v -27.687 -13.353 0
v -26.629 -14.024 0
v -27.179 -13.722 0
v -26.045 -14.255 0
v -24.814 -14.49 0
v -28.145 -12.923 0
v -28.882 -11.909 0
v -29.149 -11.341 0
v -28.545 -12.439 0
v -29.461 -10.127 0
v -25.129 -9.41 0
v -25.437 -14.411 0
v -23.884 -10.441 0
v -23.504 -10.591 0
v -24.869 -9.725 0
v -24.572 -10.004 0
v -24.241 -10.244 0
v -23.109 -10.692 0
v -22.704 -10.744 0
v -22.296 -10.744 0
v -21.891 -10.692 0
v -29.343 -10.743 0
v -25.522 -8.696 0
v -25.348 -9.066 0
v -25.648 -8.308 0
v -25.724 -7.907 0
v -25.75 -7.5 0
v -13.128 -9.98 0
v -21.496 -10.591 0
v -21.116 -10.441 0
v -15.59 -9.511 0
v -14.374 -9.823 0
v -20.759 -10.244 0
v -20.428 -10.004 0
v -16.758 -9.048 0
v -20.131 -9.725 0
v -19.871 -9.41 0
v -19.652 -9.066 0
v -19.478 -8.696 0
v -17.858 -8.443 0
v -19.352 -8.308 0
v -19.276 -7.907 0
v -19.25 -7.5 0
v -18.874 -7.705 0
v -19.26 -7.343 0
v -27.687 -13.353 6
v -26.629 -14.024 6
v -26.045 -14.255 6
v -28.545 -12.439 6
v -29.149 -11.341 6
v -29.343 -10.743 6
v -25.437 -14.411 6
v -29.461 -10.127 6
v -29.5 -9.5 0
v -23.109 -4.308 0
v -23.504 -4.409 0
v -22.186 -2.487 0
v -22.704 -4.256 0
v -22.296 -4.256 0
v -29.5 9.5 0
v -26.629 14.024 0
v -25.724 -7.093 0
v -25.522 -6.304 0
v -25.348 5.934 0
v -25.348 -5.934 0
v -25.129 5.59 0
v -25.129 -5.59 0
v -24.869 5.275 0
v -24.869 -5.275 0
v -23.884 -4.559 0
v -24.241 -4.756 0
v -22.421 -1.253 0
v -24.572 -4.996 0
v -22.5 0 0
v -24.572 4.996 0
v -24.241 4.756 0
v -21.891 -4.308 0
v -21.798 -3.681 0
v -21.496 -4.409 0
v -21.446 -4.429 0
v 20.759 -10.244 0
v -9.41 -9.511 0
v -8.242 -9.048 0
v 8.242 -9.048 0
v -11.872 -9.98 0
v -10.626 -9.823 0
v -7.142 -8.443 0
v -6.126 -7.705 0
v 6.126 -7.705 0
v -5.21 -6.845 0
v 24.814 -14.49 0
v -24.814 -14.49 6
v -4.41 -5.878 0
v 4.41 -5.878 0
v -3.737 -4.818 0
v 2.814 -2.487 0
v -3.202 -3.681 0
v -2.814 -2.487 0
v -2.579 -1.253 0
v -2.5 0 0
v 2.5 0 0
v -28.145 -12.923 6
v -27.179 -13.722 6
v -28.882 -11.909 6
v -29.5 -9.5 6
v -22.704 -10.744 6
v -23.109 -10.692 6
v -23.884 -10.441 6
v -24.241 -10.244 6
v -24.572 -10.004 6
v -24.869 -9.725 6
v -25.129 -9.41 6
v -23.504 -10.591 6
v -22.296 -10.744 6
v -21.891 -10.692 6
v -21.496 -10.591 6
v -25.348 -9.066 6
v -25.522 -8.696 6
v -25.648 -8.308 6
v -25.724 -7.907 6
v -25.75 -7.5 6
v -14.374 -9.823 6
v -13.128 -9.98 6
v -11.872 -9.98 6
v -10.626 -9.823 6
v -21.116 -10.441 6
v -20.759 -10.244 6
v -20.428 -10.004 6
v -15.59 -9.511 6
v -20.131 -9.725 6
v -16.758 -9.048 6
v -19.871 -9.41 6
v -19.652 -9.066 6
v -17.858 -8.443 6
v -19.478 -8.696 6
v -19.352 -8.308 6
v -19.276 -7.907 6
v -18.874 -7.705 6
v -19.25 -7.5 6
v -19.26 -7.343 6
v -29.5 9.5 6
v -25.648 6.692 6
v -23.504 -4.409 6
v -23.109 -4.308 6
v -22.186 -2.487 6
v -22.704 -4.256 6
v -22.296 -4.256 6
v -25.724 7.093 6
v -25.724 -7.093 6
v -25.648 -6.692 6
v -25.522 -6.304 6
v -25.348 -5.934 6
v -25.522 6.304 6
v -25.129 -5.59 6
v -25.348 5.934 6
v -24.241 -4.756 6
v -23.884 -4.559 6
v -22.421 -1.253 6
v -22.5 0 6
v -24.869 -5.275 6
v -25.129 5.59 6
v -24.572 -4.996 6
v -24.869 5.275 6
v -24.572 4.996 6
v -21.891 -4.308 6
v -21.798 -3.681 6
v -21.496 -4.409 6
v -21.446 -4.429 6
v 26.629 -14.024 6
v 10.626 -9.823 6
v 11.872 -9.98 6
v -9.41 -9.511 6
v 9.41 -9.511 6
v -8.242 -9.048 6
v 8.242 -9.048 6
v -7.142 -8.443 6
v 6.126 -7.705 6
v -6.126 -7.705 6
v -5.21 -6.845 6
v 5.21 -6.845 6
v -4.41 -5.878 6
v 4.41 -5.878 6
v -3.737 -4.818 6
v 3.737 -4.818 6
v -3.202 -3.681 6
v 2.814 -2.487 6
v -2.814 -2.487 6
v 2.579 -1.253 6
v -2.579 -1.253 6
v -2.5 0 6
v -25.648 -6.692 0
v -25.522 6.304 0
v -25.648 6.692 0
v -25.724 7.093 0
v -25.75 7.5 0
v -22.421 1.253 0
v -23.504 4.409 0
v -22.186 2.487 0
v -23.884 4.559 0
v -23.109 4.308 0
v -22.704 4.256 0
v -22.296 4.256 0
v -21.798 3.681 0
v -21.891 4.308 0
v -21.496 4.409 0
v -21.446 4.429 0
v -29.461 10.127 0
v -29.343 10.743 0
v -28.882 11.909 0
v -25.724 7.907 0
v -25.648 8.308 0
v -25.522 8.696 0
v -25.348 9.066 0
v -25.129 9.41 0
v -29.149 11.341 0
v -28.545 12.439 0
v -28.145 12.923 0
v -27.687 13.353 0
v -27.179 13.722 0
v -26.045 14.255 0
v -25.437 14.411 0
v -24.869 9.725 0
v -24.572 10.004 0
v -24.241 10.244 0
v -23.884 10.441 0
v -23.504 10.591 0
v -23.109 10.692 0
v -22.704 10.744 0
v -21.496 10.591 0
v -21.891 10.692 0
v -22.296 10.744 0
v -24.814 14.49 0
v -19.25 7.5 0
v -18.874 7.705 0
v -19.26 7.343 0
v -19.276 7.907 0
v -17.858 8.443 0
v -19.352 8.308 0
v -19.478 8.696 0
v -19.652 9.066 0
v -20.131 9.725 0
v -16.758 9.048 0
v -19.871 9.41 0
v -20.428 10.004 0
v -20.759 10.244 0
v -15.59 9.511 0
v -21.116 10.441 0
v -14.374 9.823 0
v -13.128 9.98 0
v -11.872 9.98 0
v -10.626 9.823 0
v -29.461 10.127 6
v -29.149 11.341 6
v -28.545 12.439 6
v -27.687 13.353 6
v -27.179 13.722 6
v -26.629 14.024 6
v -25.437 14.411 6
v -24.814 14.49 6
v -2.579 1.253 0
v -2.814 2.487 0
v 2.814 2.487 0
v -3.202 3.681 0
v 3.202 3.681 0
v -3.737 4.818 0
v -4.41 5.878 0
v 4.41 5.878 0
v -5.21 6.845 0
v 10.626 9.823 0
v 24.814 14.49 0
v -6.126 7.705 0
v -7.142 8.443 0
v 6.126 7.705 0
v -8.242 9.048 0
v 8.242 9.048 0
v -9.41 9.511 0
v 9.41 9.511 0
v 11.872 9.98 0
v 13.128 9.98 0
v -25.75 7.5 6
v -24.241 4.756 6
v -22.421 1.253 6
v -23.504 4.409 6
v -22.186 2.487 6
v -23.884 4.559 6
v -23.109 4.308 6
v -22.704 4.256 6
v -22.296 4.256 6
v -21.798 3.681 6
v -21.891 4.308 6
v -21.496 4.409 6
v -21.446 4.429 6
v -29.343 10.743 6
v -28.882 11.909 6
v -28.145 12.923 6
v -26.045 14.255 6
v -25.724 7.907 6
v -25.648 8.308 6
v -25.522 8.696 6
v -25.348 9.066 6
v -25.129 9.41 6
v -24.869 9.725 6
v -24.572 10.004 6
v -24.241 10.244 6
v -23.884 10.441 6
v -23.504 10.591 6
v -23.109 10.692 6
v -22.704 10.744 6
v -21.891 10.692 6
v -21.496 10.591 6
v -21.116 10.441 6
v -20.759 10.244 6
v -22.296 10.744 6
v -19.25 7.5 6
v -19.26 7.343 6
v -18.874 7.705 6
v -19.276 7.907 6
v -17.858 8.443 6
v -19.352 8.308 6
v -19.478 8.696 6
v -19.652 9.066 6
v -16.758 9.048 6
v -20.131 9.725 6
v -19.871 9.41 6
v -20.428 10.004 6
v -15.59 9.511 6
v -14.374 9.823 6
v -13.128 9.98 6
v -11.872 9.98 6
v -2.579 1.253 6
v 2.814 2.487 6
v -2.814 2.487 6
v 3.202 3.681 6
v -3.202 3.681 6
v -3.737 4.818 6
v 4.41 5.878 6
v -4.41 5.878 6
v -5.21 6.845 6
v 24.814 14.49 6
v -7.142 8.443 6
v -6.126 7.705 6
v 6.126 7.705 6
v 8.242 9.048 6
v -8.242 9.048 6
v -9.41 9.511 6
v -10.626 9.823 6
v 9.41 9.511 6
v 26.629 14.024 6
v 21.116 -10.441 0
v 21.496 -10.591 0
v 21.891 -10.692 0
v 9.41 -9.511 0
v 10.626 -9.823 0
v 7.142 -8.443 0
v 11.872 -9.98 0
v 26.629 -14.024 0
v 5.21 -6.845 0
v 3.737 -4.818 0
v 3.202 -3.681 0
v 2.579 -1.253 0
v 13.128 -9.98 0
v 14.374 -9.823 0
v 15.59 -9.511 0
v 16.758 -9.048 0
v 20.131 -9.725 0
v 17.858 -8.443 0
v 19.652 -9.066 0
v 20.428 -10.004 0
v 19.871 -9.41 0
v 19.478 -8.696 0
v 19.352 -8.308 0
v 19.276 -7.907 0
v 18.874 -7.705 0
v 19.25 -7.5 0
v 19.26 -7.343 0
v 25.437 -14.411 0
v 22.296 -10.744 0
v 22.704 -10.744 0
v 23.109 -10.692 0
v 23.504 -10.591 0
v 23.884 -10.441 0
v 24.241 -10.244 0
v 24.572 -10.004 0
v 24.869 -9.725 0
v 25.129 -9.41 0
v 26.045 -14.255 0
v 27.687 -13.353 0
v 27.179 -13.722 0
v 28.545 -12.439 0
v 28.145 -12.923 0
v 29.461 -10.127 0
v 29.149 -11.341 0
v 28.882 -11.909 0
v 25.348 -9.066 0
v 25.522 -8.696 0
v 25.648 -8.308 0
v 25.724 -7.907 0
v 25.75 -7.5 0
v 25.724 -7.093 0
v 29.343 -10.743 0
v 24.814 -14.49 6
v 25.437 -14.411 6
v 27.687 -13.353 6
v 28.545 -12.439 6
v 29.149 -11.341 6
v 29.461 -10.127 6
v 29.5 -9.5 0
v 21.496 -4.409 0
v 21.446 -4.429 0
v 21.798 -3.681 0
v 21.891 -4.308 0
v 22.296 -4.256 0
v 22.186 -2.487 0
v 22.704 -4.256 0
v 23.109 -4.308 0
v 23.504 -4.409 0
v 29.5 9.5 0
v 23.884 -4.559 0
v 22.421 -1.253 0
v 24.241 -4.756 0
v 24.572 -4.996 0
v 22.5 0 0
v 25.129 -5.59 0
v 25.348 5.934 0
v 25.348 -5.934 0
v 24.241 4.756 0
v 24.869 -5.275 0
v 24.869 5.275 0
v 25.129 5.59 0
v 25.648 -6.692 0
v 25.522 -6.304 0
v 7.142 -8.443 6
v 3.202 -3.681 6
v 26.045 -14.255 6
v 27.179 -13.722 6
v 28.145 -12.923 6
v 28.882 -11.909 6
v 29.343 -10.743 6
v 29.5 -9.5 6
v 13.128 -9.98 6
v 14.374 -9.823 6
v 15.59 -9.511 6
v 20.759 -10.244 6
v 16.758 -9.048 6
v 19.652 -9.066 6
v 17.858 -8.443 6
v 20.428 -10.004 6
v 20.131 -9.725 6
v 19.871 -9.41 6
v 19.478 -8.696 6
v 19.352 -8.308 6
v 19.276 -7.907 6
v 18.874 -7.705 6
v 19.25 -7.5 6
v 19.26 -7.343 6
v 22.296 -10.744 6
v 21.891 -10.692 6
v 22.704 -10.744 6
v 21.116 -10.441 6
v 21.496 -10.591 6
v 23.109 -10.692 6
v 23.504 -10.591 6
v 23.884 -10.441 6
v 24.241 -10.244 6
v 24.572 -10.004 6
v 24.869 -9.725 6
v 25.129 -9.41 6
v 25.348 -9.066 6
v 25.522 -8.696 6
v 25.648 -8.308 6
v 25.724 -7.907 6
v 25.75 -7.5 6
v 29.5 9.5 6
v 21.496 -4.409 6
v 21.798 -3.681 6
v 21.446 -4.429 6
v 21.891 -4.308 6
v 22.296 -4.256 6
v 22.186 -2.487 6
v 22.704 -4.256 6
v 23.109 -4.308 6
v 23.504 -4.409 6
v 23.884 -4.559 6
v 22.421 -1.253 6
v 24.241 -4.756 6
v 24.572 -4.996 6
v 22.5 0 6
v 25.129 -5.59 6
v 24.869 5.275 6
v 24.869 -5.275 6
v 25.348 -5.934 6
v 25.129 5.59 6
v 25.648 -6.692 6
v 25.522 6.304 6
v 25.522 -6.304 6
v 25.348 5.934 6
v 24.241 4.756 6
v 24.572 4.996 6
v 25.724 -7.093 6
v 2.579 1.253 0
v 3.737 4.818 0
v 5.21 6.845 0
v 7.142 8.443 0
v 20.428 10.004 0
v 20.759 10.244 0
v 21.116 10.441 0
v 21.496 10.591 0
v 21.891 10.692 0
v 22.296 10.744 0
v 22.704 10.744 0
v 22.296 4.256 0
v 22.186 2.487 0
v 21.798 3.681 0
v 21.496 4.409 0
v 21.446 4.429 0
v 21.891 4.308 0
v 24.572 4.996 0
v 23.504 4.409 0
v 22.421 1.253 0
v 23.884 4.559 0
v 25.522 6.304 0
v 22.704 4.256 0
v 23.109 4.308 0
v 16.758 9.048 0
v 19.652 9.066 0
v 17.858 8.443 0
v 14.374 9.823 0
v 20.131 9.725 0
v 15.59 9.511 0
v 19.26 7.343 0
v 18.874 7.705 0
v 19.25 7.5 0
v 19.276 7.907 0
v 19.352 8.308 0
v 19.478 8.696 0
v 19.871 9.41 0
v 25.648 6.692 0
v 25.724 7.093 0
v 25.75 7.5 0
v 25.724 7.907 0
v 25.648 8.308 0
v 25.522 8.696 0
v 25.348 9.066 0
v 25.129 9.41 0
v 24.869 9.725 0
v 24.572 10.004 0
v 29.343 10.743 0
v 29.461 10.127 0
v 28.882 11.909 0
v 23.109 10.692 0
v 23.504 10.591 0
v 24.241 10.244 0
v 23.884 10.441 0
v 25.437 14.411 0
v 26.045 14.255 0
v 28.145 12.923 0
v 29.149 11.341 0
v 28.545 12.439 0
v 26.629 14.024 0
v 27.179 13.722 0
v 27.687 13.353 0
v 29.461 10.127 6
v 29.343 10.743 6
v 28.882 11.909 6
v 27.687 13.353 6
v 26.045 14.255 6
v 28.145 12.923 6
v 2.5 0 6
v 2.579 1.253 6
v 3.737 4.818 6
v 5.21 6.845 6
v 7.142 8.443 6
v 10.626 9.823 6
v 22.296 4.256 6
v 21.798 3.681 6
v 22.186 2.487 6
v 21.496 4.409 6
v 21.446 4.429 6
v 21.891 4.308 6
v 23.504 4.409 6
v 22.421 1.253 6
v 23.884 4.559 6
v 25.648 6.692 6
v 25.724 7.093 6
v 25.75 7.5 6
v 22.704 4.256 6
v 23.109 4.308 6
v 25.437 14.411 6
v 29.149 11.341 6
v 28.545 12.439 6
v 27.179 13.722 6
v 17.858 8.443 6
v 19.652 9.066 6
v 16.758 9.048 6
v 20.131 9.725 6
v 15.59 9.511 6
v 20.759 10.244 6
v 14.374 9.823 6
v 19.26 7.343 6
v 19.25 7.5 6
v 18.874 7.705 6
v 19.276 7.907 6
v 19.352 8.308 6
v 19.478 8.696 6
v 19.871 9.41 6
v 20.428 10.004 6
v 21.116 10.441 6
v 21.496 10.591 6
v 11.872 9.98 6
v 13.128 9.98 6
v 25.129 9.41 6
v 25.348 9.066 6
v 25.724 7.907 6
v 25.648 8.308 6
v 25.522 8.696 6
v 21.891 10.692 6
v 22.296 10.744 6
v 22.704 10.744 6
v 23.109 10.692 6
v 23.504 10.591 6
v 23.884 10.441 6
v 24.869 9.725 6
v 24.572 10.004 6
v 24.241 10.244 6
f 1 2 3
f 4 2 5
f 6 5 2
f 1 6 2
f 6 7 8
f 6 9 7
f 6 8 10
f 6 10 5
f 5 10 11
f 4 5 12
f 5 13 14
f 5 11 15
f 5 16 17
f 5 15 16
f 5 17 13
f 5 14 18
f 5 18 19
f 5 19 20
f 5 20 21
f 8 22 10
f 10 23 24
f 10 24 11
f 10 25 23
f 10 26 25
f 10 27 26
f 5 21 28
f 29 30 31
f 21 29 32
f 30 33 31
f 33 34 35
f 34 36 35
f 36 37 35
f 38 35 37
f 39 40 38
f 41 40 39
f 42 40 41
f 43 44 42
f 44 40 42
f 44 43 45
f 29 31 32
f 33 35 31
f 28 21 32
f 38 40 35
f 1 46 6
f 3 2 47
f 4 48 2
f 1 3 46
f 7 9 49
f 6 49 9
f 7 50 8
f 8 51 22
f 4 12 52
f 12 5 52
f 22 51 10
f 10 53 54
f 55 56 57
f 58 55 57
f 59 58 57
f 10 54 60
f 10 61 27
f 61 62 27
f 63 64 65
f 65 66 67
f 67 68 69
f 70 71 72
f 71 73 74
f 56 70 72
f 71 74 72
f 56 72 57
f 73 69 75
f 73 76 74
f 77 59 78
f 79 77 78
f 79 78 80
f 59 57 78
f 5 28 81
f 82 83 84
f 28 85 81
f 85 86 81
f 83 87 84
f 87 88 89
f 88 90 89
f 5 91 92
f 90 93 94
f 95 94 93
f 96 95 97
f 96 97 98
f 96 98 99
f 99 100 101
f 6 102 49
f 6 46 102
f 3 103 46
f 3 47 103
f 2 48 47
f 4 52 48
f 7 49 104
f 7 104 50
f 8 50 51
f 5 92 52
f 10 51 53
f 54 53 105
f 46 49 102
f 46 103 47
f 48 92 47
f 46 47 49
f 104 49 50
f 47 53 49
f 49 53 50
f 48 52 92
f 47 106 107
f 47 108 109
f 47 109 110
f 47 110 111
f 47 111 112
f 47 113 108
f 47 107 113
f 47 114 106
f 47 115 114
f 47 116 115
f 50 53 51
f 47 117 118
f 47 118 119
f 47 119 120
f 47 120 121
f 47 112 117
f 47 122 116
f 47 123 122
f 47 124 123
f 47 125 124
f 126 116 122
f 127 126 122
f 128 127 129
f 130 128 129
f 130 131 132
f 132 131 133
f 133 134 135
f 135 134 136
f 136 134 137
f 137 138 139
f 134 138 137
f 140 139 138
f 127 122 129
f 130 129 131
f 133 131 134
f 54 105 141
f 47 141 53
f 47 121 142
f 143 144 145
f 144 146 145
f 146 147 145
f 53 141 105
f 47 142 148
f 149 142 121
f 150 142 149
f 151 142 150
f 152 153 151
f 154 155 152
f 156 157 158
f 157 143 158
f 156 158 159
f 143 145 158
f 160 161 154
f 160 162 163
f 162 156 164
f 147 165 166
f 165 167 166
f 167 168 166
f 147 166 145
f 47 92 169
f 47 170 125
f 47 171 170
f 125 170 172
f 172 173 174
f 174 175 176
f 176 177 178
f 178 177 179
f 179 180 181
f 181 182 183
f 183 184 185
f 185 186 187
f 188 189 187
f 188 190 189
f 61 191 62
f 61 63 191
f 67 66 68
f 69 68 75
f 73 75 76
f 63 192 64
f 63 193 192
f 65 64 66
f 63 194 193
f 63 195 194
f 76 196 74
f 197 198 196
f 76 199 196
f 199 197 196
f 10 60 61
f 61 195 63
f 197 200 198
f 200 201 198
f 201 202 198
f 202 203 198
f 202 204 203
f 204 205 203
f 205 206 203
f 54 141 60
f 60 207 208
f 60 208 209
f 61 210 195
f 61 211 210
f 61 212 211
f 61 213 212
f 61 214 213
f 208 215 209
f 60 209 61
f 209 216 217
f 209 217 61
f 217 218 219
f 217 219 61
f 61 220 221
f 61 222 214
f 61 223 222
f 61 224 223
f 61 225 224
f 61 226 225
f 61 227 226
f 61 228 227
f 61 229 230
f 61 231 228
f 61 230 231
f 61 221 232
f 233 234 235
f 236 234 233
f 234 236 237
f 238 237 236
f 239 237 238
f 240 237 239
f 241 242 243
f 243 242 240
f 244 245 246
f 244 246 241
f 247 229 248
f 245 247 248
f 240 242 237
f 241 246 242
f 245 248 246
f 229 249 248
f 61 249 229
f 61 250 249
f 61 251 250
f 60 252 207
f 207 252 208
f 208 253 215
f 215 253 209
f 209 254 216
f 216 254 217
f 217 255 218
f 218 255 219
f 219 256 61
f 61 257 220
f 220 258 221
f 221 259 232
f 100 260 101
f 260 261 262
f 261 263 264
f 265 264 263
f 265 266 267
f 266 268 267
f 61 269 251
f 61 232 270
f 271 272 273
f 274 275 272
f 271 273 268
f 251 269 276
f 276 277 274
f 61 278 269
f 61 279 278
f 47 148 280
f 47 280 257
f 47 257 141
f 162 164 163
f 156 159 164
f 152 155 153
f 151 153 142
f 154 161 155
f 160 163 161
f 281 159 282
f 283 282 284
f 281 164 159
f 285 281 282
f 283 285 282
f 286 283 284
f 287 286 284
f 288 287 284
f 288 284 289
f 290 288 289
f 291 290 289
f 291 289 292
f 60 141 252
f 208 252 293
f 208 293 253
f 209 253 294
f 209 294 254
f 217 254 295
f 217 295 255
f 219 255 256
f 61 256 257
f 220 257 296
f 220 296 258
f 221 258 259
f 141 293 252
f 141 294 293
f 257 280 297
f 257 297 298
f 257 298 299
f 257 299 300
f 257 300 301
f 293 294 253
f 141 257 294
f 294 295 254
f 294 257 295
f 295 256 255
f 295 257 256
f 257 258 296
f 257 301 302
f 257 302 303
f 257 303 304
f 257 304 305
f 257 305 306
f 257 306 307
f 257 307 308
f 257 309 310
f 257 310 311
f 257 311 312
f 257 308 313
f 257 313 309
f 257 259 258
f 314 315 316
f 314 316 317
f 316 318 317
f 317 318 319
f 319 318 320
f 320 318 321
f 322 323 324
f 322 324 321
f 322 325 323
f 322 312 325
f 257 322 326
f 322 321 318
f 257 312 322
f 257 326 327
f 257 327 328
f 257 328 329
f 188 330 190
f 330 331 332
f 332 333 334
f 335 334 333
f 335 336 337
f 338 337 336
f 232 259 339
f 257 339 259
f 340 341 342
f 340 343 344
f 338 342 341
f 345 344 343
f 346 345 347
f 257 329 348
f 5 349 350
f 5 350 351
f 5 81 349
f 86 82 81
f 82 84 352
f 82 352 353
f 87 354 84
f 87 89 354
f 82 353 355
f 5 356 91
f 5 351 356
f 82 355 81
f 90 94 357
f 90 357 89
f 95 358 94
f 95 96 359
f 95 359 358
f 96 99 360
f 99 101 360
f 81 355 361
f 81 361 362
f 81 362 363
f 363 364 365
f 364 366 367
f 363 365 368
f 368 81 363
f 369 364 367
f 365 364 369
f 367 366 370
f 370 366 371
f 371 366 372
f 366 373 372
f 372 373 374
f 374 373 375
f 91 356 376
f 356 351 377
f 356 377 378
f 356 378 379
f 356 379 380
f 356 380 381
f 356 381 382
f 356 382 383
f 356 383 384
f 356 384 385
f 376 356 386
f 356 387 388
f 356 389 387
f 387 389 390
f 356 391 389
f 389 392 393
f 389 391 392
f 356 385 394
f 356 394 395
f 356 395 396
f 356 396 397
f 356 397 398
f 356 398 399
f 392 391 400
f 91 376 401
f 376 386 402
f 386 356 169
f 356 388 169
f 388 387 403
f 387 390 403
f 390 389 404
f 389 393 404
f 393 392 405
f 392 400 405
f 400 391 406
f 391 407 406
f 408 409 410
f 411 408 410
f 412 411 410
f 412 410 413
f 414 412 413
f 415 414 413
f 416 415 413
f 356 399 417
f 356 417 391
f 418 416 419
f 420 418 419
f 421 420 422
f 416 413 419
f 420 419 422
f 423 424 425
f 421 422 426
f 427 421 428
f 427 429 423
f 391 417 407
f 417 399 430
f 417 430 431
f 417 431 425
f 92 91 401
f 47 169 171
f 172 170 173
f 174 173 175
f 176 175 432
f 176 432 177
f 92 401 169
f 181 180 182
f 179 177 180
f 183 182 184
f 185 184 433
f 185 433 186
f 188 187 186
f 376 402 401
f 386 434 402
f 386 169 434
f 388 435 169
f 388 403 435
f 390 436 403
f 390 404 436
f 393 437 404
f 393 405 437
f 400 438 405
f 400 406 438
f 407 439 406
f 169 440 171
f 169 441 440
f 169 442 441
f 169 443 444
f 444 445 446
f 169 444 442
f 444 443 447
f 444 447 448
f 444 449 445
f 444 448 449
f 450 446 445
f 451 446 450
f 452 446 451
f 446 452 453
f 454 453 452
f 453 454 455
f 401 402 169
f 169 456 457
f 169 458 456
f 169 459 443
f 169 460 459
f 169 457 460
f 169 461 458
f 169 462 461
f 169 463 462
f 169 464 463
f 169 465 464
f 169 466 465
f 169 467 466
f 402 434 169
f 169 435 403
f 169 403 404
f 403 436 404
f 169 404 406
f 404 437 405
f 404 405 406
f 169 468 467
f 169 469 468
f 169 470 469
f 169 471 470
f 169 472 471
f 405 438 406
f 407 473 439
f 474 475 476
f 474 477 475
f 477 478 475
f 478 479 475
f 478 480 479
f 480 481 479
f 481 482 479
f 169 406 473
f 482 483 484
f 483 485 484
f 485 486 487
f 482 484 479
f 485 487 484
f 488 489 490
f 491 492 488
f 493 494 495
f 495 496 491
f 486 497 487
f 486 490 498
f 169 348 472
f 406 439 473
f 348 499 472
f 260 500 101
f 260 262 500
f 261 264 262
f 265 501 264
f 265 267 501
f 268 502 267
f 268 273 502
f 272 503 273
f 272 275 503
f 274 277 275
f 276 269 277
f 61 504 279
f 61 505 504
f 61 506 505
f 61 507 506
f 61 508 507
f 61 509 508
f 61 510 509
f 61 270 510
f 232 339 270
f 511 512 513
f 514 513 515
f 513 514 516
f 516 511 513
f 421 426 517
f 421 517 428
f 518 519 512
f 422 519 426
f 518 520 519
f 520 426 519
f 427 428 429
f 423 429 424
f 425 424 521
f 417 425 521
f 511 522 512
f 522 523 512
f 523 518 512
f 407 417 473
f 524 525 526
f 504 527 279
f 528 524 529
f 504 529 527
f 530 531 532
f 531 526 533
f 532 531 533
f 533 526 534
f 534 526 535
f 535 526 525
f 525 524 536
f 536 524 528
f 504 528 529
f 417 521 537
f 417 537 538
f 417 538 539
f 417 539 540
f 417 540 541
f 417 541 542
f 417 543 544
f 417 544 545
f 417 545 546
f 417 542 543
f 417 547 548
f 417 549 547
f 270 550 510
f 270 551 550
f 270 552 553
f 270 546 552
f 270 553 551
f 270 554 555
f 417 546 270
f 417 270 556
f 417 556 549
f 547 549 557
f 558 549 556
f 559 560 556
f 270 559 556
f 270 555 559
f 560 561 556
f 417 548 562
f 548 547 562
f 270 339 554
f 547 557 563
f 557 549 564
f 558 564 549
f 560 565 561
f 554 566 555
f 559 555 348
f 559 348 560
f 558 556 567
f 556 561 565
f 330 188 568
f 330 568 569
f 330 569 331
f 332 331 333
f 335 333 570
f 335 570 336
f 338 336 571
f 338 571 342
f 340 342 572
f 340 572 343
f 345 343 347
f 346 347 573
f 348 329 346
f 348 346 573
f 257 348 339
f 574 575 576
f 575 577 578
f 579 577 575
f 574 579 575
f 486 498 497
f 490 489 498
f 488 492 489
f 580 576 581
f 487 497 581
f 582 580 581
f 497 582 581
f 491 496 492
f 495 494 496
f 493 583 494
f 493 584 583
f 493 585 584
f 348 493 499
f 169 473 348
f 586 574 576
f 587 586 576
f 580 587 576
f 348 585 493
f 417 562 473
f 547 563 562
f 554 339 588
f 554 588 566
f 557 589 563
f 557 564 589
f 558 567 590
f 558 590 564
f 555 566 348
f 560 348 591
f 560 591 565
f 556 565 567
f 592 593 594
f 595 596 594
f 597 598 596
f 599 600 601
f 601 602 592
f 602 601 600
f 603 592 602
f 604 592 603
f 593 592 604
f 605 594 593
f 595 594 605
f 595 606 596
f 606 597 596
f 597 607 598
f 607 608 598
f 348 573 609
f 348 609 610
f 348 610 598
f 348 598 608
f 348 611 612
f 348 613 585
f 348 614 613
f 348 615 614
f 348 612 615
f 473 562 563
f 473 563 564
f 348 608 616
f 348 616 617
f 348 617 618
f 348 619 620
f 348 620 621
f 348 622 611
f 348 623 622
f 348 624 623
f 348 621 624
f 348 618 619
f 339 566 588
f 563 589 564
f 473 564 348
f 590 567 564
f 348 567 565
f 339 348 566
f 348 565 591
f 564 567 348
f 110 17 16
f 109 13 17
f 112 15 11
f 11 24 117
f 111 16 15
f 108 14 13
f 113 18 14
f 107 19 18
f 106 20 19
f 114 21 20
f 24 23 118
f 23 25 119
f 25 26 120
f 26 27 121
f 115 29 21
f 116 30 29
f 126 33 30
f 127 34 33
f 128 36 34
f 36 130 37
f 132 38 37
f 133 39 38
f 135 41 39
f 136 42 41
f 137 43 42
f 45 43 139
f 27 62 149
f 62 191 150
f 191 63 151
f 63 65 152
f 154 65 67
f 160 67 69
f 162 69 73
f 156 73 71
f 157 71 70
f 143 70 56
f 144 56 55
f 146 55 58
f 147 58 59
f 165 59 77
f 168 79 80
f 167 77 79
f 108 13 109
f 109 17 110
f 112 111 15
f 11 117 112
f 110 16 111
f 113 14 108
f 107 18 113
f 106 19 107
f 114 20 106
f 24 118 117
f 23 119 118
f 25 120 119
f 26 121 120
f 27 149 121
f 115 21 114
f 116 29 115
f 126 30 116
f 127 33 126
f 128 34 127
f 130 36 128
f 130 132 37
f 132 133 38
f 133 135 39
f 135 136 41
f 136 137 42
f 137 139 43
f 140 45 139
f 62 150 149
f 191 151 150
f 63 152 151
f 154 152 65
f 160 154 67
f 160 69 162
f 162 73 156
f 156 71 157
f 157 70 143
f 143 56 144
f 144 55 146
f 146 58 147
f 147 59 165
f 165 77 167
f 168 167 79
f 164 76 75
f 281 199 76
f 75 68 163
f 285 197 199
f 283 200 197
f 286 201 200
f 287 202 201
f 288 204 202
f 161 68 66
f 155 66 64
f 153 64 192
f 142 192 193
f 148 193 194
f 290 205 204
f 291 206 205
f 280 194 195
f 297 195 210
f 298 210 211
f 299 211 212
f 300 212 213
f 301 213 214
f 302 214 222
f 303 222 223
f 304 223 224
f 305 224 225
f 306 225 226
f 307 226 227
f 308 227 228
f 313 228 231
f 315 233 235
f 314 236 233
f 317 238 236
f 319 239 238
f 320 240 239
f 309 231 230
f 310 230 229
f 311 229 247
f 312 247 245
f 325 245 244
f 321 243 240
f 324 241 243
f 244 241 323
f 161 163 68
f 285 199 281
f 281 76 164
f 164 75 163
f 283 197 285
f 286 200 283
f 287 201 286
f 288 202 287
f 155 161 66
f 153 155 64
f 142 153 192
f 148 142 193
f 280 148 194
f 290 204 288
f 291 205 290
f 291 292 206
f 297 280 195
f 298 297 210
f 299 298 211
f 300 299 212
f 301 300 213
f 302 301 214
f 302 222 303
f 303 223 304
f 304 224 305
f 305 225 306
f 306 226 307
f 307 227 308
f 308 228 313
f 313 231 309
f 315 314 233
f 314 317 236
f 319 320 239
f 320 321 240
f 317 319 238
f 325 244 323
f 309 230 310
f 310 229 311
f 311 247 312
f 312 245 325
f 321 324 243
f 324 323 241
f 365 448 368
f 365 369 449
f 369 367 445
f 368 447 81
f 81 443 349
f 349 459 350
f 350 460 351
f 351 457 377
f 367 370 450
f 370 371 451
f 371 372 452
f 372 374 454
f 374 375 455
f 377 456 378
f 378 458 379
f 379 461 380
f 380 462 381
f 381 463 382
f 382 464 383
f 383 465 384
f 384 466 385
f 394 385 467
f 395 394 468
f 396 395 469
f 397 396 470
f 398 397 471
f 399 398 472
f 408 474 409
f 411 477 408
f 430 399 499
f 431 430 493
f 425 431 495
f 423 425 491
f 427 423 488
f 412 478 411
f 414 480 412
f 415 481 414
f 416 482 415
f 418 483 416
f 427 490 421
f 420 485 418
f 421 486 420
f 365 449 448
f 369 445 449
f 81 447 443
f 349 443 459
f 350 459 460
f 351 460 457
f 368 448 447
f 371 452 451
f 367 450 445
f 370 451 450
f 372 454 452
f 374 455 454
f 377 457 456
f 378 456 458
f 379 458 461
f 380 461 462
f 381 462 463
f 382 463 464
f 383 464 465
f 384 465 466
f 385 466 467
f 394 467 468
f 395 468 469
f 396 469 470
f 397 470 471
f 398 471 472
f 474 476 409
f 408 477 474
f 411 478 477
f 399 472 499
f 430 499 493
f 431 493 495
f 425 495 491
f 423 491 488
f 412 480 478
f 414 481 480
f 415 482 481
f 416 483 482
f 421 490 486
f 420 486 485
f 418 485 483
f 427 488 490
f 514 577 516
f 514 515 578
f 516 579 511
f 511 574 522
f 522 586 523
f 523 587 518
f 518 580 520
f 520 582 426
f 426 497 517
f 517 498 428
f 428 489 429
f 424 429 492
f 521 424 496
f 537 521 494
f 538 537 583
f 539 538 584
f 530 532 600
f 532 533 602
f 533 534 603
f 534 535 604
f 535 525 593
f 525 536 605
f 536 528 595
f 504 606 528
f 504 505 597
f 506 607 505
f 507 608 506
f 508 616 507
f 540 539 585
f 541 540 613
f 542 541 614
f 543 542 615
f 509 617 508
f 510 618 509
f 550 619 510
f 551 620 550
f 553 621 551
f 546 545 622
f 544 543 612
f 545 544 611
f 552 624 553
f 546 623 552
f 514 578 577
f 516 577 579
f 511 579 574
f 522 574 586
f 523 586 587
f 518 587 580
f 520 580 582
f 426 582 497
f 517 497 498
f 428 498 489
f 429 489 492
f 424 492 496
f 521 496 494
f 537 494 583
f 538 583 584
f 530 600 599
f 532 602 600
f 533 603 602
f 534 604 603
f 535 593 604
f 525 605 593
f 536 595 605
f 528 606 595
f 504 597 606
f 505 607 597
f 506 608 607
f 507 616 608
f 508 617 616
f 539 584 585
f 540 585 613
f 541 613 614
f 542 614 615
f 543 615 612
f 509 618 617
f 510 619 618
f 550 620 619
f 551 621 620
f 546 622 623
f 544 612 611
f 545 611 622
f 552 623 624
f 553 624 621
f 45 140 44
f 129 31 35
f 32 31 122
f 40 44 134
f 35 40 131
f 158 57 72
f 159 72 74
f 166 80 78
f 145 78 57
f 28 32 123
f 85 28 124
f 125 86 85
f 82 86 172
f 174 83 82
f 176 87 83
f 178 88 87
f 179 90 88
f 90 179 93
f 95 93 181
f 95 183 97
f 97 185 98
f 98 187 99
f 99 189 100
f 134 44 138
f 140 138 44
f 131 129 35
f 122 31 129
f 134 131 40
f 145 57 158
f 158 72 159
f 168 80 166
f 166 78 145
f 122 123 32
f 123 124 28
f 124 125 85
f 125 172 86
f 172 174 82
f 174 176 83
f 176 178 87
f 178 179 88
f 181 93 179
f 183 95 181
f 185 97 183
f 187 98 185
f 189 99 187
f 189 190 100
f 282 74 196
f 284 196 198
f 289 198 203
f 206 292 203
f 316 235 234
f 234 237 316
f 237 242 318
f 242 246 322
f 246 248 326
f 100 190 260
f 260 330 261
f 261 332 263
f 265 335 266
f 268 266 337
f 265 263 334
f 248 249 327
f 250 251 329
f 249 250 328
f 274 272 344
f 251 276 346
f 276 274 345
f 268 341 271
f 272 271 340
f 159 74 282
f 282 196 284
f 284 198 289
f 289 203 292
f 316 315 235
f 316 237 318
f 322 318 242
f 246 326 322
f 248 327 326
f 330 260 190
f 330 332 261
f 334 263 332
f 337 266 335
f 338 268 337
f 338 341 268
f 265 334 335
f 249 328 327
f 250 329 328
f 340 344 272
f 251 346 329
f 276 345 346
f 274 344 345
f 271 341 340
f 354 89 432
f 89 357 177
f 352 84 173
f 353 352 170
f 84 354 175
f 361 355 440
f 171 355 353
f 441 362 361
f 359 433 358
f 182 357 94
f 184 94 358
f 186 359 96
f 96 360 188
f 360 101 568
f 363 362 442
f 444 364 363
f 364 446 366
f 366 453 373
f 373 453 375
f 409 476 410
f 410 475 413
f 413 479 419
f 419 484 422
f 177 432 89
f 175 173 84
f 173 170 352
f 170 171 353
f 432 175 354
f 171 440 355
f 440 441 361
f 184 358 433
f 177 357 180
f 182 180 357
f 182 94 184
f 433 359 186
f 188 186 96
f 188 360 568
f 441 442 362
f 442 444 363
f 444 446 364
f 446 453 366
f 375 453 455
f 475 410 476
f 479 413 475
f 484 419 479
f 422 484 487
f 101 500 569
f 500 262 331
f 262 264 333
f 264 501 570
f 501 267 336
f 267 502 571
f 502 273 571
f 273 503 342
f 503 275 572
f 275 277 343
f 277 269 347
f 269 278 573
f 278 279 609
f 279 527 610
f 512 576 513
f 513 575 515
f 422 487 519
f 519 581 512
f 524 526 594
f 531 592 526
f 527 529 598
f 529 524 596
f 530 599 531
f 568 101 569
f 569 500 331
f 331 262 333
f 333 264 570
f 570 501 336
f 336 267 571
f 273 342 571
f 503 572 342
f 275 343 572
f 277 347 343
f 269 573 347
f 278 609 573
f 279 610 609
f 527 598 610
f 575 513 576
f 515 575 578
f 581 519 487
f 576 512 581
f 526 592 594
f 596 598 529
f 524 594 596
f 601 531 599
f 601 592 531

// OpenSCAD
$fn = 50;

difference() {
	union() {
		hull() {
			translate(v = [-24.5, 9.5, 0]) {
				cylinder(h = 6, r = 5);
			}
			translate(v = [24.5, 9.5, 0]) {
				cylinder(h = 6, r = 5);
			}
			translate(v = [-24.5, -9.5, 0]) {
				cylinder(h = 6, r = 5);
			}
			translate(v = [24.5, -9.5, 0]) {
				cylinder(h = 6, r = 5);
			}
		}
	}
	union() {
		translate(v = [-22.5, -7.5, -100.0]) {
			cylinder(h = 200, r = 3.25);
		}
		translate(v = [-22.5, 7.5, -100.0]) {
			cylinder(h = 200, r = 3.25);
		}
		translate(v = [22.5, -7.5, -100.0]) {
			cylinder(h = 200, r = 3.25);
		}
		translate(v = [22.5, 7.5, -100.0]) {
			cylinder(h = 200, r = 3.25);
		}
		translate(v = [-22.5, -7.5, -100.0]) {
			cylinder(h = 200, r = 1.8);
		}
		translate(v = [-22.5, 7.5, -100.0]) {
			cylinder(h = 200, r = 1.8);
		}
		translate(v = [22.5, -7.5, -100.0]) {
			cylinder(h = 200, r = 1.8);
		}
		translate(v = [22.5, 7.5, -100.0]) {
			cylinder(h = 200, r = 1.8);
		}
		translate(v = [-12.5, 0, 0.0]) {
			cylinder(h = 6, r = 10.0);
		}
		translate(v = [12.5, 0, 0.0]) {
			cylinder(h = 6, r = 10.0);
		}
	}
}
